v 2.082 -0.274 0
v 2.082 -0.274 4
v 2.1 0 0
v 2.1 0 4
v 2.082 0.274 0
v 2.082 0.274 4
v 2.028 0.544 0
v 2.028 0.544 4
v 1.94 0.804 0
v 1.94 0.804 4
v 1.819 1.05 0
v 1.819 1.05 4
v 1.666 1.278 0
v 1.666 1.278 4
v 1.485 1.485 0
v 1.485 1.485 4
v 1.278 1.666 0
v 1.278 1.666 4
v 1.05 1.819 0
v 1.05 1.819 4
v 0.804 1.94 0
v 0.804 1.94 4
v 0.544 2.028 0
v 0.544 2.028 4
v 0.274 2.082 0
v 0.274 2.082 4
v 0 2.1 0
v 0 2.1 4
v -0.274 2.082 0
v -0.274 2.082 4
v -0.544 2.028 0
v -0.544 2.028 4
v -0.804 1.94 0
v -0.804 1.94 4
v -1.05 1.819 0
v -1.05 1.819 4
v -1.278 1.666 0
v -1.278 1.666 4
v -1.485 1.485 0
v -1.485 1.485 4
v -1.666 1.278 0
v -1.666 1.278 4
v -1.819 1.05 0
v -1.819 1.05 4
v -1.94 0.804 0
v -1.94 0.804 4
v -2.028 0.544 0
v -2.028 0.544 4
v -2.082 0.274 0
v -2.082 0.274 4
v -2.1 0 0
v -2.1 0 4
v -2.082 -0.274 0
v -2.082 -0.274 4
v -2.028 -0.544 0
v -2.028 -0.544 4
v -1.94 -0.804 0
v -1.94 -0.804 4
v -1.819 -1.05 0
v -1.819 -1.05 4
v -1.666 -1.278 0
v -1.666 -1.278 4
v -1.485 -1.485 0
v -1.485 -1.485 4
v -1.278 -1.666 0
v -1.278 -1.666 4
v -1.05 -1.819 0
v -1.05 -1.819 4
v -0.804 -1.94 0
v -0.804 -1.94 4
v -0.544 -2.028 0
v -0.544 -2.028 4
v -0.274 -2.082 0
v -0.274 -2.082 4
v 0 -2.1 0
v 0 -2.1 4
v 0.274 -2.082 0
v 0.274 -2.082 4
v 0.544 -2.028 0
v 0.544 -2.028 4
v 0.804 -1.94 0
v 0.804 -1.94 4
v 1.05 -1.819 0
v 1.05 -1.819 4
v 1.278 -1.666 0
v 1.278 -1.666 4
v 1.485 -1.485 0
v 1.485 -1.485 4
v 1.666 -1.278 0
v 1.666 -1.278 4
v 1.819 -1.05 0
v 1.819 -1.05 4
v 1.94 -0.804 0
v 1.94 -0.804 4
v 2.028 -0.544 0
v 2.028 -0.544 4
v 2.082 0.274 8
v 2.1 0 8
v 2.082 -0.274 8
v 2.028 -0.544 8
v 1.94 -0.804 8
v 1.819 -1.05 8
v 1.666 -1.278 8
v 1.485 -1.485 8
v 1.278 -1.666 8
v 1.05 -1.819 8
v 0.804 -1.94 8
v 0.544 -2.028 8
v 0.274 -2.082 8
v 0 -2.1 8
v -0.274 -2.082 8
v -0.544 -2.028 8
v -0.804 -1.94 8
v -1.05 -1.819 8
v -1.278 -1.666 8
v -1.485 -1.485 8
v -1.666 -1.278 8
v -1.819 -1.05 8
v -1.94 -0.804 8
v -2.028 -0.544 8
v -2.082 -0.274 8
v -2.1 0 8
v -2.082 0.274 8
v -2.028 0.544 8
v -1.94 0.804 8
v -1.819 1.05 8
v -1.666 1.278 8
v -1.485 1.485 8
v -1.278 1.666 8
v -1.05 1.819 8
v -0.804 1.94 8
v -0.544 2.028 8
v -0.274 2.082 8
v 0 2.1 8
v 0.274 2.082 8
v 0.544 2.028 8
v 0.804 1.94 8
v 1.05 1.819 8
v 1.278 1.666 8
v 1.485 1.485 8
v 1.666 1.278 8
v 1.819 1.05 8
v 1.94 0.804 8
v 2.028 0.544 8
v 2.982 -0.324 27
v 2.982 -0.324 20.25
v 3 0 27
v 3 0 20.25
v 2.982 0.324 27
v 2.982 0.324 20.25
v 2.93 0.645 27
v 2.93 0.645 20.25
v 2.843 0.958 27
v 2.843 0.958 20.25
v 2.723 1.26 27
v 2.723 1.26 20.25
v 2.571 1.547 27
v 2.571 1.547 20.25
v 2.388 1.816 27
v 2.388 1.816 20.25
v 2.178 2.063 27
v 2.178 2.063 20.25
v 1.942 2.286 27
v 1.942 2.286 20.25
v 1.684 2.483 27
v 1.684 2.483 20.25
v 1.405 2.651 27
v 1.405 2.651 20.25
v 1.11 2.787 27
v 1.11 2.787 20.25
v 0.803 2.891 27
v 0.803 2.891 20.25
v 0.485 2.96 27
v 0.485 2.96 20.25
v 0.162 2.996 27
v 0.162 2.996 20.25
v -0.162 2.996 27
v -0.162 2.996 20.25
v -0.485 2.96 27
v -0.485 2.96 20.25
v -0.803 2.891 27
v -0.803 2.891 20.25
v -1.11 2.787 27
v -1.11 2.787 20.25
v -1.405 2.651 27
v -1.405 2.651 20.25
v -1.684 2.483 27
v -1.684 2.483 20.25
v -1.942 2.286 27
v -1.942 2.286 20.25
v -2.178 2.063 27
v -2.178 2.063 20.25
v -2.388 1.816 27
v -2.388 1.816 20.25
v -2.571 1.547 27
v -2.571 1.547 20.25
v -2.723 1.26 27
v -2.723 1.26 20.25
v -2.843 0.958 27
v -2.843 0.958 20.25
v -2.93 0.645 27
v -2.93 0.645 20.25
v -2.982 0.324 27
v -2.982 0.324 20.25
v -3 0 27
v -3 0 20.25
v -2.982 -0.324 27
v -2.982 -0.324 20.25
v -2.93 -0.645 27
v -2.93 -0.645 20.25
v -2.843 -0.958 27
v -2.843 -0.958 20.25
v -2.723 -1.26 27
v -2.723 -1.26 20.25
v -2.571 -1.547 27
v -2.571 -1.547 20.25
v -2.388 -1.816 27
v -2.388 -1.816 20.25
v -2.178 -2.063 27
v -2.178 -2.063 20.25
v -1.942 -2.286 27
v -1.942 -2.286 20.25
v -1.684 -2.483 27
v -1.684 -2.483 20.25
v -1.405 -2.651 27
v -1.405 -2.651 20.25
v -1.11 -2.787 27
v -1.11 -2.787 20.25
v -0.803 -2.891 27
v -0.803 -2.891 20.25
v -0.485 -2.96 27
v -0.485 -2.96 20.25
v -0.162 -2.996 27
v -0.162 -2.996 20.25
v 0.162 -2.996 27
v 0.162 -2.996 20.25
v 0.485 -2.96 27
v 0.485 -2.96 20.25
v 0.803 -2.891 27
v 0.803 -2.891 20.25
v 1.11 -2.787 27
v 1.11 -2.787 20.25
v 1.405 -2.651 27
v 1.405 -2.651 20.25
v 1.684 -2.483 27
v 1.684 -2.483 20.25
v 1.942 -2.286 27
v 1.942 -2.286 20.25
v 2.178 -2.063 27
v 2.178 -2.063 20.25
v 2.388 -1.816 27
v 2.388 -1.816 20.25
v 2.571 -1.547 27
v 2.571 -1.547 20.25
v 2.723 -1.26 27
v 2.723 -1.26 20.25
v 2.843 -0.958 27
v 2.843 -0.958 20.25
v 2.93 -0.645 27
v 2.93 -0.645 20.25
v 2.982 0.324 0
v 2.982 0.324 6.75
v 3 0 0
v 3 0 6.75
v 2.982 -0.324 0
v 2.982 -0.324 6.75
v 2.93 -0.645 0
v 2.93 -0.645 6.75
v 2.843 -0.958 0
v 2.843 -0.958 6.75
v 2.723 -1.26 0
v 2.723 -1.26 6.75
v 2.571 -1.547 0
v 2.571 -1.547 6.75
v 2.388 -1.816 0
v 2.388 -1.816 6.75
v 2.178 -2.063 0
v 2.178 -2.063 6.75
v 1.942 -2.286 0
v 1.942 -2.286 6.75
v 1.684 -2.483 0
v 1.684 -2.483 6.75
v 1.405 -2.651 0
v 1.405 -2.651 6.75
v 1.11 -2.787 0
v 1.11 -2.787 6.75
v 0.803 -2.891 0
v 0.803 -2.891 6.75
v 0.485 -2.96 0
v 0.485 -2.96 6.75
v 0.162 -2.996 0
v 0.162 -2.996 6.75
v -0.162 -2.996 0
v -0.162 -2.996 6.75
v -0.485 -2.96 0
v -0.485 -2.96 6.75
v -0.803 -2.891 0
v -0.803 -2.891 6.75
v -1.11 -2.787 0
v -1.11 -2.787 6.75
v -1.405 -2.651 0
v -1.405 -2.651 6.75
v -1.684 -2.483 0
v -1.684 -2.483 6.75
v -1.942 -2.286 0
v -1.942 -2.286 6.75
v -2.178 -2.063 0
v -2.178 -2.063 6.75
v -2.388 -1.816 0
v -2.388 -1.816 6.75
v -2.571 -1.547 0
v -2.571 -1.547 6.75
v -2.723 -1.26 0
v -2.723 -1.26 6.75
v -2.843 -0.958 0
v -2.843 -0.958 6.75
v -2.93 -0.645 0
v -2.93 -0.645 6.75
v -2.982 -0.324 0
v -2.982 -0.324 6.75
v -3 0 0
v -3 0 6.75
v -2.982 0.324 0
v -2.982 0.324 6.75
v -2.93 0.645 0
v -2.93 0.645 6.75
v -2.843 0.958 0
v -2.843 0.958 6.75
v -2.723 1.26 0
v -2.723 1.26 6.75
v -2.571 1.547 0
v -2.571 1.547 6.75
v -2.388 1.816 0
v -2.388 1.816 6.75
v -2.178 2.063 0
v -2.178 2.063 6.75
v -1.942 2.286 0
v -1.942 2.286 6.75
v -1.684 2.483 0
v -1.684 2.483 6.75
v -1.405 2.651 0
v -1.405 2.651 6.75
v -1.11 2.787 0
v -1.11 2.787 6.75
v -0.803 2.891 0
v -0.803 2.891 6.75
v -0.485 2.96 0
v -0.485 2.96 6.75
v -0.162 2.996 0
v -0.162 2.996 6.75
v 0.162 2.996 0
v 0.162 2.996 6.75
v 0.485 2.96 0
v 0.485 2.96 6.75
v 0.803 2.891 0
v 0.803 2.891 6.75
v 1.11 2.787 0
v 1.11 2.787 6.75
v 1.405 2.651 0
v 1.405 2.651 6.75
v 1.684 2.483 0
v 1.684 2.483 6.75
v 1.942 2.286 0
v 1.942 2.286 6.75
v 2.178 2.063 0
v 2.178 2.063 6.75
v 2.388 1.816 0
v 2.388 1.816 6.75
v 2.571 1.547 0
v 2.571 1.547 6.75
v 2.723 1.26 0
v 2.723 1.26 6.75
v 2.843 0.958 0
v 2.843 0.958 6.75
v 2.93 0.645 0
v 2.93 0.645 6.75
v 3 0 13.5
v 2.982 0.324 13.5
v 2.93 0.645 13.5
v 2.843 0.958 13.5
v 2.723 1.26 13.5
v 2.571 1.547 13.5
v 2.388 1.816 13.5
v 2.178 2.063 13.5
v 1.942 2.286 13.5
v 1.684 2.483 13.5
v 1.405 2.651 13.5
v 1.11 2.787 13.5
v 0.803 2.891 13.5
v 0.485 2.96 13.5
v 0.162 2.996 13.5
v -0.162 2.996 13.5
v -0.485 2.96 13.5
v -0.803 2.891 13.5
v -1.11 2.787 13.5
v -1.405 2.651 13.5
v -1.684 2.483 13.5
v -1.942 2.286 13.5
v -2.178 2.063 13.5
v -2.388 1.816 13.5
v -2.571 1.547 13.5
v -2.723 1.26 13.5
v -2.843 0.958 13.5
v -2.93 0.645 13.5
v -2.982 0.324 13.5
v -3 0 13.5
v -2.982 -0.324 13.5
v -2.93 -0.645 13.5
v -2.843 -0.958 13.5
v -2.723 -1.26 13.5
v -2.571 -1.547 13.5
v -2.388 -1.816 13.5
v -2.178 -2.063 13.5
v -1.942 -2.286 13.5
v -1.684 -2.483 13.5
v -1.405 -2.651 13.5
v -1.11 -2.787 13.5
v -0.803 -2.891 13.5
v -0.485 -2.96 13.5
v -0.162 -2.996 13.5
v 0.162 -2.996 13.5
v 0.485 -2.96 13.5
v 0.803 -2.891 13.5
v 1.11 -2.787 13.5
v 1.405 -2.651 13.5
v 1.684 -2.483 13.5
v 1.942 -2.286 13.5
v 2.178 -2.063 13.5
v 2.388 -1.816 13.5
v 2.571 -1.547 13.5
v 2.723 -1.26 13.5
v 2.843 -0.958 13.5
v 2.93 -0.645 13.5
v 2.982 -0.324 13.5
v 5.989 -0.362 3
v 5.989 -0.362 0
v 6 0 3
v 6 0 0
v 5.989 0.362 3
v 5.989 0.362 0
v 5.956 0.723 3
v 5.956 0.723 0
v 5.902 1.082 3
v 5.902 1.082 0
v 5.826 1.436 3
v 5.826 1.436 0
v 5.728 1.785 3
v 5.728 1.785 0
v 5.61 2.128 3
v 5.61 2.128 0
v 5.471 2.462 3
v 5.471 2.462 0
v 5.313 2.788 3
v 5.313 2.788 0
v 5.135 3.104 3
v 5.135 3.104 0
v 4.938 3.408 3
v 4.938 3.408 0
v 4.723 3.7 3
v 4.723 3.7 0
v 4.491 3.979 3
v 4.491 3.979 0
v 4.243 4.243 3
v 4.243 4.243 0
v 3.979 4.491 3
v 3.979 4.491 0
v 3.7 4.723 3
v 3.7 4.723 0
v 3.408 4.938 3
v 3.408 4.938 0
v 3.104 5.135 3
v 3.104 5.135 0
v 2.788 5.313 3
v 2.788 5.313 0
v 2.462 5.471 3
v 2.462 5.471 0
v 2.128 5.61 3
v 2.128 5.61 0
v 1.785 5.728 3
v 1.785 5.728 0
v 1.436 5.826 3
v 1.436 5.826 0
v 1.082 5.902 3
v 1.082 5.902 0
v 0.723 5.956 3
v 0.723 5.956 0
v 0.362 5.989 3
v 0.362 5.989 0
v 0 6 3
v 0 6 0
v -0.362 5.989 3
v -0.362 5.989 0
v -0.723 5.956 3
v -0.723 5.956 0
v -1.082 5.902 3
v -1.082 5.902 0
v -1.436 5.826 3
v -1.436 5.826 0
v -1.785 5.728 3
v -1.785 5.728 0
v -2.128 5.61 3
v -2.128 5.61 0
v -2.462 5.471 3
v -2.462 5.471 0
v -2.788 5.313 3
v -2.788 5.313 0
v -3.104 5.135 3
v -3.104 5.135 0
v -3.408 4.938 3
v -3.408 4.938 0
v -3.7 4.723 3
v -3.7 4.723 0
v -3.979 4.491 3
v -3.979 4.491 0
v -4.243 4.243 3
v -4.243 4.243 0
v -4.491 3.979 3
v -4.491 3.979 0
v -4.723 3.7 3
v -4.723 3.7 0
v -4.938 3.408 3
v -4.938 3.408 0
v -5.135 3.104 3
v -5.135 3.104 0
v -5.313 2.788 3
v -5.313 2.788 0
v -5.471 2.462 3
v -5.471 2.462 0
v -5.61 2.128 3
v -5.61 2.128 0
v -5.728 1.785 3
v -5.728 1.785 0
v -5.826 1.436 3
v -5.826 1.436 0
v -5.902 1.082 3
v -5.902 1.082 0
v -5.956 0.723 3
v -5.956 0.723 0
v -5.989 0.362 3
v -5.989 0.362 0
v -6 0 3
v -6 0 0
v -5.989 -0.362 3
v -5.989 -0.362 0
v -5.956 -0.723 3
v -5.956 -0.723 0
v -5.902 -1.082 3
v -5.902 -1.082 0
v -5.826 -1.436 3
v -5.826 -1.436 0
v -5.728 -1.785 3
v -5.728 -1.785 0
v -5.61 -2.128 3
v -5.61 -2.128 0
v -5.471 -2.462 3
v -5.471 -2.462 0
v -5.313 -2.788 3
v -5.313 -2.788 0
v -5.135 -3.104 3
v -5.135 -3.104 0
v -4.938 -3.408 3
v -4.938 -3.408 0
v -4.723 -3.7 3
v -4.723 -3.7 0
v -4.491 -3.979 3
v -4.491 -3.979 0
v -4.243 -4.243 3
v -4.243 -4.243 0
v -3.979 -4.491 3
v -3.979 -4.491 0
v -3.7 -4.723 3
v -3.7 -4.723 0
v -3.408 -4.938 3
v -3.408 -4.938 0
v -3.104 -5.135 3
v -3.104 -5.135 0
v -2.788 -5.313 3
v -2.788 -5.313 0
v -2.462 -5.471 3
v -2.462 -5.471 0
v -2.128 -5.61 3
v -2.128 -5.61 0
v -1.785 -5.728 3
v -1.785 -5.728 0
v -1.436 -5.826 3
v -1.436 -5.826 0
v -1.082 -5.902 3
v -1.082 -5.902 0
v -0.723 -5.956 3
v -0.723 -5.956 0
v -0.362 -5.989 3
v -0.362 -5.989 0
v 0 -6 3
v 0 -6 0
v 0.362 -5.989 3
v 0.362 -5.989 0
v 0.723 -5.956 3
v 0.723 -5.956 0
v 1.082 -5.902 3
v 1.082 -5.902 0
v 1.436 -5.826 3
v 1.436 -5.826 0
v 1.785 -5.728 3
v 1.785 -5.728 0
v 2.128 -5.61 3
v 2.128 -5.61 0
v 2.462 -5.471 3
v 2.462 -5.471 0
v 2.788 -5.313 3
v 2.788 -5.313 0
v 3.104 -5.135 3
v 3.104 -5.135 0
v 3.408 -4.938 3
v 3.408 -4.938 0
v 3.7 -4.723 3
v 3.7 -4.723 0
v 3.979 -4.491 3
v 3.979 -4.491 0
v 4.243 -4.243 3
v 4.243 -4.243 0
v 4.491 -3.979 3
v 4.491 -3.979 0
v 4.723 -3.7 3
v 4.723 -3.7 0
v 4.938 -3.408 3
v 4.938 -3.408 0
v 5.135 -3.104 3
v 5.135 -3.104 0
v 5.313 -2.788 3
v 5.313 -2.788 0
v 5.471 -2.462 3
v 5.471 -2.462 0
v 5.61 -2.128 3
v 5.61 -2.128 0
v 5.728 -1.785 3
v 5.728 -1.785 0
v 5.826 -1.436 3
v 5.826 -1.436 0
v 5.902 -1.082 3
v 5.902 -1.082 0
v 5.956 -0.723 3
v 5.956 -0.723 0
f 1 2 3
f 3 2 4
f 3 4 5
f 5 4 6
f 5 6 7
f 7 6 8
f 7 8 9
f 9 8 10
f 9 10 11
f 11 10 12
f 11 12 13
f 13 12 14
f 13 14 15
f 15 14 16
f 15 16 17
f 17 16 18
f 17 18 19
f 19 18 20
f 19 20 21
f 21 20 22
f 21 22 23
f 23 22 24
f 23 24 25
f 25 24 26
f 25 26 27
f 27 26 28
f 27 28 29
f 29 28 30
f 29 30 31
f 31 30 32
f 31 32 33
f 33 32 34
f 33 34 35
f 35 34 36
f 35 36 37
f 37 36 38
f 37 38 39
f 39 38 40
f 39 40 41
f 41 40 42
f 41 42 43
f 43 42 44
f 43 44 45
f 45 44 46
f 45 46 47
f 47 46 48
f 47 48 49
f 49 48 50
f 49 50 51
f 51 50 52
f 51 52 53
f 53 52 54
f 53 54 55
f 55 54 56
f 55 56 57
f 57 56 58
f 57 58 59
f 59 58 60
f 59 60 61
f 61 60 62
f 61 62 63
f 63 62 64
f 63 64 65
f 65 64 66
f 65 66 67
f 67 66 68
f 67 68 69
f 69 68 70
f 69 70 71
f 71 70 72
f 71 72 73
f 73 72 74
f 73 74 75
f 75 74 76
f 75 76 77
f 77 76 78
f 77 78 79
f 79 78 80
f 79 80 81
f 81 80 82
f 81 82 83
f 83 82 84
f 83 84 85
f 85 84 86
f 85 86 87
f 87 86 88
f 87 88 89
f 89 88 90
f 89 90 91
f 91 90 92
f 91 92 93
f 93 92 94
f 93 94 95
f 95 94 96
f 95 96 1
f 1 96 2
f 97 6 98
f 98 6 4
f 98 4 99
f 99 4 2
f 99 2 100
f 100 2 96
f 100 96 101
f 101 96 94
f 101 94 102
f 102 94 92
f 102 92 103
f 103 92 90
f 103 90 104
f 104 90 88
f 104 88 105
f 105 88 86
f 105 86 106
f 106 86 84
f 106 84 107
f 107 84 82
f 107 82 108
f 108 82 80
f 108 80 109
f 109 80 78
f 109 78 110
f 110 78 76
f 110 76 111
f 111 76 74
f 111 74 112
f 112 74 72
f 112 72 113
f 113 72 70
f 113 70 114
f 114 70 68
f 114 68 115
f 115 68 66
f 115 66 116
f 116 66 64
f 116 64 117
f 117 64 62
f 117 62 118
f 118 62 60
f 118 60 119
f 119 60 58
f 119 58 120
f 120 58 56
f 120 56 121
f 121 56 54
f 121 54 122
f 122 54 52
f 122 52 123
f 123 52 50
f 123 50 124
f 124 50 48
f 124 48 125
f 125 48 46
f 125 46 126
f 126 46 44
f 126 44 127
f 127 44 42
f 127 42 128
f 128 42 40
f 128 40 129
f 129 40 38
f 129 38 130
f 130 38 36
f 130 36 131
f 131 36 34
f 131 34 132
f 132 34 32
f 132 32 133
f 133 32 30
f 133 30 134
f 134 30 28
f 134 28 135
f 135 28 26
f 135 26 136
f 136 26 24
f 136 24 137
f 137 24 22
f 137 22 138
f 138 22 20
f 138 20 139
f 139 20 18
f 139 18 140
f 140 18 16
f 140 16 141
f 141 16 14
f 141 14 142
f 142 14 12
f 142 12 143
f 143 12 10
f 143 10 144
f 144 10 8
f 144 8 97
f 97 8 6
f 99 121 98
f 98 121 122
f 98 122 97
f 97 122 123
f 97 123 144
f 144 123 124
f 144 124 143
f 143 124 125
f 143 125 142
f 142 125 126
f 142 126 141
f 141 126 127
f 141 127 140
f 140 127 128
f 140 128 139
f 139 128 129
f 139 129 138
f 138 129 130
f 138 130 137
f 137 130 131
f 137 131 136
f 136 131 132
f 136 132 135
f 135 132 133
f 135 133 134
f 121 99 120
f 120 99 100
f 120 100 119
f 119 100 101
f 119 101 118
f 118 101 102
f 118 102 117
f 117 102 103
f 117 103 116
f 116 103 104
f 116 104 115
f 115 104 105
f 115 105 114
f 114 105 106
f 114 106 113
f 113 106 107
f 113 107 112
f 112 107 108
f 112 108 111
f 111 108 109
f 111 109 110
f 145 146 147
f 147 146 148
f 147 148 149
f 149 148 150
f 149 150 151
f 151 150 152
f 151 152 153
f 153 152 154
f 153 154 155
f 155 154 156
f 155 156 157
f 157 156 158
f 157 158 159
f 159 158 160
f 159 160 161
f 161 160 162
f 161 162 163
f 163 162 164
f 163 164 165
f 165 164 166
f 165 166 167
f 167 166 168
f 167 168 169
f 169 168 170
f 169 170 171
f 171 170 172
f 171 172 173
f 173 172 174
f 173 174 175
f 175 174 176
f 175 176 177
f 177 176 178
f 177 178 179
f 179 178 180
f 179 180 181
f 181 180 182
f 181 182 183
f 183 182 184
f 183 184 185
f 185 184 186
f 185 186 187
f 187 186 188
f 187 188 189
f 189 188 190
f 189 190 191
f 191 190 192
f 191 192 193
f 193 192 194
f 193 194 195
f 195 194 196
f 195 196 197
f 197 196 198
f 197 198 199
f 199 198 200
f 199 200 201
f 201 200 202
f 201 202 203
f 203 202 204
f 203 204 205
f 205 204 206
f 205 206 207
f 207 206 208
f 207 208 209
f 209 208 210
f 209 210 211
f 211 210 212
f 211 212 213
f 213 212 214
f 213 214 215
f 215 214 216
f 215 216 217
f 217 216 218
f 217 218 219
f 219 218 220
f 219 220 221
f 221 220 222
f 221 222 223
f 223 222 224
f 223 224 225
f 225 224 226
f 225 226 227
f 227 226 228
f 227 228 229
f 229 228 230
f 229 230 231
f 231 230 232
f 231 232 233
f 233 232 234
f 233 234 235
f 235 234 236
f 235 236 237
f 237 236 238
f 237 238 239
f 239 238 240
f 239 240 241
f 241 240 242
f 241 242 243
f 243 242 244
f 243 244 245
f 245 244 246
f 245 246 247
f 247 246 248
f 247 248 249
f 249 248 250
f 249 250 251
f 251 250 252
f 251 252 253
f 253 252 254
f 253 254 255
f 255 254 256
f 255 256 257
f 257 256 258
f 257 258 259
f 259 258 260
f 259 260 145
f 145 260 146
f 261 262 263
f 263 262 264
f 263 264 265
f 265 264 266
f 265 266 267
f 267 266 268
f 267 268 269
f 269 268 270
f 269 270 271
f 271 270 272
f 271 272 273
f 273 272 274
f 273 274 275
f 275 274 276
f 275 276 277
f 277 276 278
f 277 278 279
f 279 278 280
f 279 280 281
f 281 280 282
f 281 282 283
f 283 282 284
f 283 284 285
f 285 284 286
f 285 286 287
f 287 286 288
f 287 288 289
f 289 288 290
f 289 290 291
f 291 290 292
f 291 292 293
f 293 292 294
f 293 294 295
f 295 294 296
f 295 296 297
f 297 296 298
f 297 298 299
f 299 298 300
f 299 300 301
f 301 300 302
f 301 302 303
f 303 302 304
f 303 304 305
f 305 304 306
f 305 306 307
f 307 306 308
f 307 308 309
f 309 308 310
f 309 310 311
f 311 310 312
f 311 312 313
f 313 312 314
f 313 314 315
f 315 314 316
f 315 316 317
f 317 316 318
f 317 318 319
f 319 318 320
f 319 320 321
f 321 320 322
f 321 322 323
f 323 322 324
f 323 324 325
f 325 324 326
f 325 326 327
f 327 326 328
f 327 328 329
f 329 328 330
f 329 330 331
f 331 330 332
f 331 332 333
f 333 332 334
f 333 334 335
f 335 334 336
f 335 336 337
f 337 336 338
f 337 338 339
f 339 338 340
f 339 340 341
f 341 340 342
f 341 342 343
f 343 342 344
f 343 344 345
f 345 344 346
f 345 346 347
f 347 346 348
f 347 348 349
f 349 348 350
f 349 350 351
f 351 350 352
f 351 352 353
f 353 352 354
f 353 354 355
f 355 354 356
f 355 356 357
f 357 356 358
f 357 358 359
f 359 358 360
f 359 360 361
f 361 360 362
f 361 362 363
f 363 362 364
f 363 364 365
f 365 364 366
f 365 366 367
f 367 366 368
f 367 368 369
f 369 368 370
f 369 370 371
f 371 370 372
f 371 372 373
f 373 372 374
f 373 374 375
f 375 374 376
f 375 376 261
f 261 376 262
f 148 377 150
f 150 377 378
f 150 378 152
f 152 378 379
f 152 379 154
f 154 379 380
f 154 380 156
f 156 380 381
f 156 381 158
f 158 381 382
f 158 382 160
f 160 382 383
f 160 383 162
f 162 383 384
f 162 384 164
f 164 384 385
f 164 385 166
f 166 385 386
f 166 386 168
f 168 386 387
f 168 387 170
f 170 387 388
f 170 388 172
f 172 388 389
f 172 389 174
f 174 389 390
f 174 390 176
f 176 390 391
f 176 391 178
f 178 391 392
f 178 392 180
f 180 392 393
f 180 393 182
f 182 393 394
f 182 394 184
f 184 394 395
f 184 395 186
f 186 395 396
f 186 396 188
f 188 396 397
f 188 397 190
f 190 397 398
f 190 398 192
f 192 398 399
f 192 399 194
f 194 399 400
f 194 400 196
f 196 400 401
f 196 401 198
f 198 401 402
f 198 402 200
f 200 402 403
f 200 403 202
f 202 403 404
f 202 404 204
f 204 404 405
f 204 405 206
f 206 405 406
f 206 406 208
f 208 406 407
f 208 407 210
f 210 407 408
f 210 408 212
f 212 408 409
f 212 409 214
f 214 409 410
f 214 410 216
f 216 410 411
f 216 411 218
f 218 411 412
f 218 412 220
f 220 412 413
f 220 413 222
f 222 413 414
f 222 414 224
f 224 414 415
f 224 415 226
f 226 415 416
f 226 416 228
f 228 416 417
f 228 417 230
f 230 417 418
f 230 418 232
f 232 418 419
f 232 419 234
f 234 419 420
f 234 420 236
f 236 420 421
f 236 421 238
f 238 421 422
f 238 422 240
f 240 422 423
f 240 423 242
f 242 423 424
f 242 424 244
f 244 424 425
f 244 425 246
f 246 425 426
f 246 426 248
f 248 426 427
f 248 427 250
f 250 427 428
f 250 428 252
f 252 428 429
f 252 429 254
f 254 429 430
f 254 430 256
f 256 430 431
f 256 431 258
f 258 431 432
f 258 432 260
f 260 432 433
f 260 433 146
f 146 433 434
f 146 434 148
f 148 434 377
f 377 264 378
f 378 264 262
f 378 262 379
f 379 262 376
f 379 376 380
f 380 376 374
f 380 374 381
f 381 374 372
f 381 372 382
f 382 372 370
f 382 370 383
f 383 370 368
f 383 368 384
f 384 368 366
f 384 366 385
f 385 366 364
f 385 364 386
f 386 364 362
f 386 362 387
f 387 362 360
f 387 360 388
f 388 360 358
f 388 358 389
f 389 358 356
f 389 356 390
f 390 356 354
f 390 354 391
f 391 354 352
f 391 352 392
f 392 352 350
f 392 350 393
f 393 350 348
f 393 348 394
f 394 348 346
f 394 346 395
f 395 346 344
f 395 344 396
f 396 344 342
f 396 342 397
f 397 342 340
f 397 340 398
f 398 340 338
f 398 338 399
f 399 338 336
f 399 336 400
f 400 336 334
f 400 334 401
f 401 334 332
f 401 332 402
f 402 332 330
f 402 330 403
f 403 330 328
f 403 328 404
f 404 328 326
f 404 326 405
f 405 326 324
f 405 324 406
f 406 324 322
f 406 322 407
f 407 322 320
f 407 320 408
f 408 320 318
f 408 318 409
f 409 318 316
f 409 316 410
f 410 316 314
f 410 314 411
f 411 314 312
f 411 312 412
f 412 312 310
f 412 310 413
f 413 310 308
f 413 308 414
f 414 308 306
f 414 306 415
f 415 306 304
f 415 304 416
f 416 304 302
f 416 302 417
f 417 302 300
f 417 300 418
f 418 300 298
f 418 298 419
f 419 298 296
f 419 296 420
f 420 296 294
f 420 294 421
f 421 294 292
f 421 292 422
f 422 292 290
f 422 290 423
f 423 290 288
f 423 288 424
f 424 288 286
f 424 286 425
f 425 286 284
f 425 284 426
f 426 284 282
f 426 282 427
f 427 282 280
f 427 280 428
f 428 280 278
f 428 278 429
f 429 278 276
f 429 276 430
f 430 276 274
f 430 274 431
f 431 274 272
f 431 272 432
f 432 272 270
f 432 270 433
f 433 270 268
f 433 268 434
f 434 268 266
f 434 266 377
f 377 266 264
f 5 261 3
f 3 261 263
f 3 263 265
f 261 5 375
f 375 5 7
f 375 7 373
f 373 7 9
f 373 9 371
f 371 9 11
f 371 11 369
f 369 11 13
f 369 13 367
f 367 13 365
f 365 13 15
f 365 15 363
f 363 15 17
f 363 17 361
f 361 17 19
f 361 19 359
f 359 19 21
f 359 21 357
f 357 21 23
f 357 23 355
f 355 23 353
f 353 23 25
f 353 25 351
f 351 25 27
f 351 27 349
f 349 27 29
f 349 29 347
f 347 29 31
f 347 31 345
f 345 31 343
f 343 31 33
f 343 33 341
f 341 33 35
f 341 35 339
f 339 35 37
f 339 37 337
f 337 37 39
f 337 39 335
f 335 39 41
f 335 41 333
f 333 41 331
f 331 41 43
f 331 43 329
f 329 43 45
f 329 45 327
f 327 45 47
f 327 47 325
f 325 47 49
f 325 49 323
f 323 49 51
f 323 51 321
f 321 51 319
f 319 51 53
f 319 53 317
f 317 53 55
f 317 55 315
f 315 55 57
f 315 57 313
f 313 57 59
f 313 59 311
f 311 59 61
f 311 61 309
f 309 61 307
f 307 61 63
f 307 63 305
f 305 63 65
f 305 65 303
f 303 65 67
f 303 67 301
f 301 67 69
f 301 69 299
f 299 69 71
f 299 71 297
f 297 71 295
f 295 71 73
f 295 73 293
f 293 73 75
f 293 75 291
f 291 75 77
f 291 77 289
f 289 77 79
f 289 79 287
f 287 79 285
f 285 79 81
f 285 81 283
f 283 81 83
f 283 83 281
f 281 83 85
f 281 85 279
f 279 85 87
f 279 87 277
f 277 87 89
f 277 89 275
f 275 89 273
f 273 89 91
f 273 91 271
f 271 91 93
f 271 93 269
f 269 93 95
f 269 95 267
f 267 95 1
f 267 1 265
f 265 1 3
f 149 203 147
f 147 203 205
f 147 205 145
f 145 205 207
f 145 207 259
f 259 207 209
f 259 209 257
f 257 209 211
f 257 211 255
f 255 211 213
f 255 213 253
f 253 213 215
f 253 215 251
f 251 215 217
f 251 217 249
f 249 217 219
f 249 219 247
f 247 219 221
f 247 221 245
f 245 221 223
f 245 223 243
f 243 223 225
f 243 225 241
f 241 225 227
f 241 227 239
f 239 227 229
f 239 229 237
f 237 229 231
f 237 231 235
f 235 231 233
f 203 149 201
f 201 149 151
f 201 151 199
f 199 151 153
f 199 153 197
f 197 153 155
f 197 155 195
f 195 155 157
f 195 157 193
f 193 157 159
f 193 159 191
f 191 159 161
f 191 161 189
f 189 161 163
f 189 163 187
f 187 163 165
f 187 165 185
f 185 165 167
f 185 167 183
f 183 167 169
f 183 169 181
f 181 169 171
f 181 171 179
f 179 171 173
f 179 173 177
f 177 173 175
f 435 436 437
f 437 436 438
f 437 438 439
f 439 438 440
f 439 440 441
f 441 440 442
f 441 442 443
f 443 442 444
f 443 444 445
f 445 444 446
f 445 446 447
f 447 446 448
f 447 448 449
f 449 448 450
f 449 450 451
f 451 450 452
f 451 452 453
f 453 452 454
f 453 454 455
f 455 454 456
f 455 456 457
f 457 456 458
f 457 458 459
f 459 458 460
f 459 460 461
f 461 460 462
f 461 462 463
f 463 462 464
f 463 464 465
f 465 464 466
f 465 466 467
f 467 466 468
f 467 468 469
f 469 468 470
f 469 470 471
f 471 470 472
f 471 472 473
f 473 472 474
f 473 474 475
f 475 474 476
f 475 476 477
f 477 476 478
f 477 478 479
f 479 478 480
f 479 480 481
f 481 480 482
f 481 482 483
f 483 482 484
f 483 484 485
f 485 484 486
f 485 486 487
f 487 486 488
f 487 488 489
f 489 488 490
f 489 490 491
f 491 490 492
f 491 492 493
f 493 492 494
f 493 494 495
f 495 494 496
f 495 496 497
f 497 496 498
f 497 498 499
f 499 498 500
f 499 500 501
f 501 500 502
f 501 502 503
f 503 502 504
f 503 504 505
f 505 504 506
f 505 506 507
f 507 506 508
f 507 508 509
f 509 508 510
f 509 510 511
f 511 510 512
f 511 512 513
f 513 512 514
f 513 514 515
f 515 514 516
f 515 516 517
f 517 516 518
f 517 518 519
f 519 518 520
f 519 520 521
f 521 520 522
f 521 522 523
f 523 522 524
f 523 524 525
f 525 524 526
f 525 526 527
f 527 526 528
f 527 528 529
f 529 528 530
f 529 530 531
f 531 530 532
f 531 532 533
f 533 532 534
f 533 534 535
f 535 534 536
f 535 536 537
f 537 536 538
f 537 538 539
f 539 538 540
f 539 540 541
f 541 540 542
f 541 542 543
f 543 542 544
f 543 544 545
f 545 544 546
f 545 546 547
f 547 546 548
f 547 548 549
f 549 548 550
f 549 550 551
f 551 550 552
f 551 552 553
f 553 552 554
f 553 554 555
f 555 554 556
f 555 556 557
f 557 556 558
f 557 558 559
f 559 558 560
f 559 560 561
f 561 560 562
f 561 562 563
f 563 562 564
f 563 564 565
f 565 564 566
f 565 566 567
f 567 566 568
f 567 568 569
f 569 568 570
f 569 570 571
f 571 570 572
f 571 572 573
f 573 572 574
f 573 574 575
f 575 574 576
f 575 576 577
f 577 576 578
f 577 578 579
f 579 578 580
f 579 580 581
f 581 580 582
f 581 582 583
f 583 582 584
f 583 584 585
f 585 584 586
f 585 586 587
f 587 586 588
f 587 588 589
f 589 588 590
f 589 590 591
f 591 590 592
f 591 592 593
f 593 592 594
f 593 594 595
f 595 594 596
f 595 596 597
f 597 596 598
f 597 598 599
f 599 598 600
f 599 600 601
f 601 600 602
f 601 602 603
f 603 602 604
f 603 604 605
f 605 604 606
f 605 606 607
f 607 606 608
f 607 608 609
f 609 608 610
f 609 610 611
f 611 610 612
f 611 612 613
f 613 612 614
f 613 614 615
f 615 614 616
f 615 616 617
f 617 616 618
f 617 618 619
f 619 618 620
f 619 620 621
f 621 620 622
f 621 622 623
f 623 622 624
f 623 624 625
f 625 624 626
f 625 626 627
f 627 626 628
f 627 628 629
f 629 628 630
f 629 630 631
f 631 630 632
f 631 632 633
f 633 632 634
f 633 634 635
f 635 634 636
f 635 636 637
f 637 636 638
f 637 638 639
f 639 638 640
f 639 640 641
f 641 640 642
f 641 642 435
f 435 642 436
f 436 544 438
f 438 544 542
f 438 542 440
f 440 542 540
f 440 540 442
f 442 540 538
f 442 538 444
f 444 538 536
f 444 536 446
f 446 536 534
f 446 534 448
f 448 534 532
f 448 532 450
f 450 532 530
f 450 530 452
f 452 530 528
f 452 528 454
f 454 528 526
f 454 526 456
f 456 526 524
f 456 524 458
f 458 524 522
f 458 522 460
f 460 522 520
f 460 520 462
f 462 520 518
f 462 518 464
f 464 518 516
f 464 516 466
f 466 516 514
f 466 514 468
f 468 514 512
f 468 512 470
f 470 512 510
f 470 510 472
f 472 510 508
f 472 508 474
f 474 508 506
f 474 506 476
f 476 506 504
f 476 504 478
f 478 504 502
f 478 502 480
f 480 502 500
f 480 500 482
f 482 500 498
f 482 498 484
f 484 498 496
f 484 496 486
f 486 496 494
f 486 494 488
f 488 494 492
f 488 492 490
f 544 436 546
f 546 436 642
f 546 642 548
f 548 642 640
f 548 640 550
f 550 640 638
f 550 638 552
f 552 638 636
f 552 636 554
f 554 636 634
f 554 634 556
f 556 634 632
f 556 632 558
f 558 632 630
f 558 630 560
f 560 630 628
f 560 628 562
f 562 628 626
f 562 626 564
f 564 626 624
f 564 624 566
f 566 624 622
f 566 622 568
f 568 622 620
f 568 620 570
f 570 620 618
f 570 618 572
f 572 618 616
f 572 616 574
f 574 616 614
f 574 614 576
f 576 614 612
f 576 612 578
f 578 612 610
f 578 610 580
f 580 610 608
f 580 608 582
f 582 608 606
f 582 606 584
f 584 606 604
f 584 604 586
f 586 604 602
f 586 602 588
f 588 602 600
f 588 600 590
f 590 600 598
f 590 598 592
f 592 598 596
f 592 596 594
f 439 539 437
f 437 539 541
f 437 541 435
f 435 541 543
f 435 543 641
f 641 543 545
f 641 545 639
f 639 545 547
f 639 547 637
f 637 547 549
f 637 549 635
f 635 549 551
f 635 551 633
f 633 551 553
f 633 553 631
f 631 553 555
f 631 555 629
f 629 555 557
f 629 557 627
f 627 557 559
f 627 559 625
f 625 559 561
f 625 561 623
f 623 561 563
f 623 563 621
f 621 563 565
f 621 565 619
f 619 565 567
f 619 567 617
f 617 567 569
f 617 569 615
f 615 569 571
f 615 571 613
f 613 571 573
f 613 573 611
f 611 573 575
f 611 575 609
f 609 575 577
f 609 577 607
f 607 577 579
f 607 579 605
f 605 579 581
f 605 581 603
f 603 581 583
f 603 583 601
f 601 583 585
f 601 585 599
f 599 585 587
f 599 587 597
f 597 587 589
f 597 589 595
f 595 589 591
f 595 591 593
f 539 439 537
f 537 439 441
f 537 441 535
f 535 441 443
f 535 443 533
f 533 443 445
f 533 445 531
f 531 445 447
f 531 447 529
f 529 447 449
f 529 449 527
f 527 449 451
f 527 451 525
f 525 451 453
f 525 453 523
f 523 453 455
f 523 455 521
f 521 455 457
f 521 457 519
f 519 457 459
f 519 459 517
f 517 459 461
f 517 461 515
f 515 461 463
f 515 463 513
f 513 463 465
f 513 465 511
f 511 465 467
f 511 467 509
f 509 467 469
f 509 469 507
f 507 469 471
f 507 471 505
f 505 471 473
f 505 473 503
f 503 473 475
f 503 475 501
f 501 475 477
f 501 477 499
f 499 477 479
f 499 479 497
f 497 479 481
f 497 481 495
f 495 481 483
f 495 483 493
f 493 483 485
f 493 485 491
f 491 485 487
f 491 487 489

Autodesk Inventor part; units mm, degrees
ref_plane "YZ Plane" through (0, 0, 0) normal (1, 0, 0) x (0, 1, 0)
ref_plane "XZ Plane" through (0, 0, 0) normal (0, 1, 0) x (-1, 0, 0)
ref_plane "XY Plane" through (0, 0, 0) normal (0, 0, 1) x (1, 0, 0)
sketch "Skizze1" plane through (0, 0, 0) normal (0, 0, 1) x (1, 0, 0)
  circle A0 centre (0, 0) radius 3
extrude "Extrusion1" add sketch "Skizze1" along normal blind 27
sketch "Skizze2" plane through (0, 0, 0) normal (0, 0, 1) x (1, 0, 0)
  circle A0 centre (0, 0) radius 6
extrude "Extrusion2" add sketch "Skizze2" along normal blind 3 separate body
sketch "Skizze3" plane through (0, 0, 0) normal (0, 0, 1) x (1, 0, 0)
  circle A0 centre (0, 0) radius 2.1
extrude "Extrusion3" cut sketch "Skizze3" along normal blind 8 bodies 1
properties part number "Taststift"
